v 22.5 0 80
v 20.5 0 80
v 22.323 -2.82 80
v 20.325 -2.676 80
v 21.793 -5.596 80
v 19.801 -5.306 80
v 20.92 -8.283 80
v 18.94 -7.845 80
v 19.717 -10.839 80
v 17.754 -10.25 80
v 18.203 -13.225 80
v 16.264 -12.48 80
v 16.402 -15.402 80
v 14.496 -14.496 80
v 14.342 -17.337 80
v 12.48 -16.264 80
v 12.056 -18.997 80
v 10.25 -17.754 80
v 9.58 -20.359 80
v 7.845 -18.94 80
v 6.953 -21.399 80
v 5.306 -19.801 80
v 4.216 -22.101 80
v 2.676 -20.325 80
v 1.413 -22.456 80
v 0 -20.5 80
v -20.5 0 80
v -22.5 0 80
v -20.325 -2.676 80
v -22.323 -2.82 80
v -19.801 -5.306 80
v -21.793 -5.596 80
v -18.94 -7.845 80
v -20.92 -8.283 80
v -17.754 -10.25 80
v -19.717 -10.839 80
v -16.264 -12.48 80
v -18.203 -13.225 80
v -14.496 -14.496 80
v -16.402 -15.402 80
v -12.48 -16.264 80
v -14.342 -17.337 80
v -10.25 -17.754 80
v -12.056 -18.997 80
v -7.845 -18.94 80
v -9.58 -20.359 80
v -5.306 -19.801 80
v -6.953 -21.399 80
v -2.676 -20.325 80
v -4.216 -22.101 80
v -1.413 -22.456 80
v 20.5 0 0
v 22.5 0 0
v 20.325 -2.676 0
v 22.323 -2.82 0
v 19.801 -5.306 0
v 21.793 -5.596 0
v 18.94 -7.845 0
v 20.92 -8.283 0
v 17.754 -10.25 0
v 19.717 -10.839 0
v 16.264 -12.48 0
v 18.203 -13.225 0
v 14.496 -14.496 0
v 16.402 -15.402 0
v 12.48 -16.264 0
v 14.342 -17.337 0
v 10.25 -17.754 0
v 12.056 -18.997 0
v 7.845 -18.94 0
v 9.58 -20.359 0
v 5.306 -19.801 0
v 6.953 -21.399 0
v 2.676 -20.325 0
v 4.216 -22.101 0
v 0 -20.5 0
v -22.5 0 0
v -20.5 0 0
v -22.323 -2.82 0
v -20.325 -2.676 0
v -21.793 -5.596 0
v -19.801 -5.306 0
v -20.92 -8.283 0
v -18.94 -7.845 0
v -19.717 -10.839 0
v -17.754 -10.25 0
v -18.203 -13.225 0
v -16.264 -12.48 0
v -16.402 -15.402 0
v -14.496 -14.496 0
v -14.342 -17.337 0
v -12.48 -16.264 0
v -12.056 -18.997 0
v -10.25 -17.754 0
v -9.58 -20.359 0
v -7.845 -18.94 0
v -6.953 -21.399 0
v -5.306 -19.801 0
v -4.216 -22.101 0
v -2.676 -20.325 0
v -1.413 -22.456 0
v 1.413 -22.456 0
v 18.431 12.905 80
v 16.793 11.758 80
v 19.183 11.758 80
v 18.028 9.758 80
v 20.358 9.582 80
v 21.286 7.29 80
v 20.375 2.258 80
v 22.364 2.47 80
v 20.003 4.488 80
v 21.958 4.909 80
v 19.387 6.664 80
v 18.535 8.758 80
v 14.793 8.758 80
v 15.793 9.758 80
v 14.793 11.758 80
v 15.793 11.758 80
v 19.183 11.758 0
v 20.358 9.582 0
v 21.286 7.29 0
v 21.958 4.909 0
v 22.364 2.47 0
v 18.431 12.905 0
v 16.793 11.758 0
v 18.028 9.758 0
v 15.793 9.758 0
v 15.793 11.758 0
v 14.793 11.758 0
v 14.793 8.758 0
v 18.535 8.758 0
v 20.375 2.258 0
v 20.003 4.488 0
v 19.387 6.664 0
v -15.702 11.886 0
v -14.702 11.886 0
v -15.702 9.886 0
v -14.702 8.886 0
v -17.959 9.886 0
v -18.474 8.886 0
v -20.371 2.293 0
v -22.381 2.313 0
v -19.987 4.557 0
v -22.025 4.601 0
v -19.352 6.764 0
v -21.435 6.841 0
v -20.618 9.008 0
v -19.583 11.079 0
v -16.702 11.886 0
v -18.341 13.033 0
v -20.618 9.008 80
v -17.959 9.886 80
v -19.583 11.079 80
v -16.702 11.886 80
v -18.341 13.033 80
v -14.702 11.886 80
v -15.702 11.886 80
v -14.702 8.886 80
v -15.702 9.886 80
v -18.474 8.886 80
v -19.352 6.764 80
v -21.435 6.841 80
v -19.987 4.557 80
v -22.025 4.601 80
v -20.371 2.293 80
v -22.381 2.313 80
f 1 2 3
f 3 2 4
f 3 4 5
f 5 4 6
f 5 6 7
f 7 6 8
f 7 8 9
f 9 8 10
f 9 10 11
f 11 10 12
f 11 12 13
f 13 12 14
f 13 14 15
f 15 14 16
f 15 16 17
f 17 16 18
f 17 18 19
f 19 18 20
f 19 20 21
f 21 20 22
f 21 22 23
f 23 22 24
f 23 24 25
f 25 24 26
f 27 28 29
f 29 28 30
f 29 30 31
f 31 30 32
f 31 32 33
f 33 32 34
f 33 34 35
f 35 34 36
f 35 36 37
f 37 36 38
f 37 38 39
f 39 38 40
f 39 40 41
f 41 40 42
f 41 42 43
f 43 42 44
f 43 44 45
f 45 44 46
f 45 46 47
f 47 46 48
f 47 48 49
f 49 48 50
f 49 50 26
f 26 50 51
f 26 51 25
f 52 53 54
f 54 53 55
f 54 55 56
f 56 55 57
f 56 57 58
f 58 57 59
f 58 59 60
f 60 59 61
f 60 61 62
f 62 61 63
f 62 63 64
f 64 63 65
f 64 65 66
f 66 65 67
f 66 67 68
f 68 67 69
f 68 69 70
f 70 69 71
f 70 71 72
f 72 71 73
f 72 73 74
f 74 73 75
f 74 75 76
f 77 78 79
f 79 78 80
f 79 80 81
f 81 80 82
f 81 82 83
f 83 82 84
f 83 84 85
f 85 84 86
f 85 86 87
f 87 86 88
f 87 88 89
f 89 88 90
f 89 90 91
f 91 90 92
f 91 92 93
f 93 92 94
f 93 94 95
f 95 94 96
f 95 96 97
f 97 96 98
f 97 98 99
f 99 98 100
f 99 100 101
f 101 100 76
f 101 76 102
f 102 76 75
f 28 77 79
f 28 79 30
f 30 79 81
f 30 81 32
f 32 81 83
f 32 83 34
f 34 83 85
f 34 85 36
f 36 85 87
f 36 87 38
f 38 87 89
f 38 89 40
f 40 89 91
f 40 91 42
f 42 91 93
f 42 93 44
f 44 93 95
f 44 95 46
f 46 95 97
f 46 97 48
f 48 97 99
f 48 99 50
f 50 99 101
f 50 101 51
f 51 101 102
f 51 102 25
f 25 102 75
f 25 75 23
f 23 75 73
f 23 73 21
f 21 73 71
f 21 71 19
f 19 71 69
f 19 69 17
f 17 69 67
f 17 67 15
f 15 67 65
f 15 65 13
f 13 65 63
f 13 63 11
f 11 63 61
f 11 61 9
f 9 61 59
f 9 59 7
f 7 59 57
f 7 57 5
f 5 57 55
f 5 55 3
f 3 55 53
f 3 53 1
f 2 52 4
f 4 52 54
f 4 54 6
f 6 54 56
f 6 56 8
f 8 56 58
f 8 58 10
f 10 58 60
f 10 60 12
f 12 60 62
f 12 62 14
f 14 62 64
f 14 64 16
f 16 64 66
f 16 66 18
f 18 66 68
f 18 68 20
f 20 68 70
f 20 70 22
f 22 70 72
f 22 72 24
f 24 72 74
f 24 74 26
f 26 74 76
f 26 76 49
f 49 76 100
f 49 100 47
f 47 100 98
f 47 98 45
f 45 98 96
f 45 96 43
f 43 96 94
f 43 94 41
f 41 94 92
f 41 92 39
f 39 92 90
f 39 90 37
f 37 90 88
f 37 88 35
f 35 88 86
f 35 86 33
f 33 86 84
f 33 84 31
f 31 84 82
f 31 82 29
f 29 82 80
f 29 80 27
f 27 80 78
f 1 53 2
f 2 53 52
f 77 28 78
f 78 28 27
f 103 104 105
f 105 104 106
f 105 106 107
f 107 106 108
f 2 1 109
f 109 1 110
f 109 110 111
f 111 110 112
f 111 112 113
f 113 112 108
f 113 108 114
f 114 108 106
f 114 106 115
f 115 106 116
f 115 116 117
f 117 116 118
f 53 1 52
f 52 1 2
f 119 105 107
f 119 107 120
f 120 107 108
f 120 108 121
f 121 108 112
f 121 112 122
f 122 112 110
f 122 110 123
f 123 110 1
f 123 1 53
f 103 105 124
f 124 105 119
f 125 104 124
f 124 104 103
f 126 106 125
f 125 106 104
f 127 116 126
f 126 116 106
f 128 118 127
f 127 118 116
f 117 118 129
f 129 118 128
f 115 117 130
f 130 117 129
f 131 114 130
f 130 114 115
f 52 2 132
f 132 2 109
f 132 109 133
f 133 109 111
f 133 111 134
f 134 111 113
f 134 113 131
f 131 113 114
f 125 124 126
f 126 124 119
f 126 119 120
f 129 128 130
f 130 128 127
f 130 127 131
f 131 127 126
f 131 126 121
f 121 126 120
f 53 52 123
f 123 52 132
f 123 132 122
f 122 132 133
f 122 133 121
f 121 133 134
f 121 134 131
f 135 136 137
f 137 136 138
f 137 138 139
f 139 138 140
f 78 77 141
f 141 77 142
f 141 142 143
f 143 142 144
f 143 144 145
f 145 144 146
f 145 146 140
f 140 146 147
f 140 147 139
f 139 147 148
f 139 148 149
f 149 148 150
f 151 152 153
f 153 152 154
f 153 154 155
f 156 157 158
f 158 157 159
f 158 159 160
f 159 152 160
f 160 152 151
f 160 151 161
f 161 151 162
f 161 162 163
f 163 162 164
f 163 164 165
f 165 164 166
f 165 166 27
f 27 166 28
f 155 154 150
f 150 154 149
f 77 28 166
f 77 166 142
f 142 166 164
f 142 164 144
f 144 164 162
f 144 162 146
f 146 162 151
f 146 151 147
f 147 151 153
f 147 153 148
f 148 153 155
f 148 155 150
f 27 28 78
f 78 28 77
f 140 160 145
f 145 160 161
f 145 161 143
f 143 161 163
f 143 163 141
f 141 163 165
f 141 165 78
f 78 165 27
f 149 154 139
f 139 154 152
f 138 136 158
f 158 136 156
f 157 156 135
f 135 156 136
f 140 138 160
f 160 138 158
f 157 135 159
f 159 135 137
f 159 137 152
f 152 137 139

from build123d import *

# Parameters (mm, degrees)
SKETCH1_R           = 22.5
SKETCH1_R_2         = 20.5
BOSS_EXTRUDE1_DEPTH = 80
SKETCH2_W           = 45
SKETCH2_H           = 22.5
CUT_EXTRUDE1_DEPTH  = 87.095876789
SKETCH4_W           = 4.401808348
SKETCH4_H           = 1
SKETCH4_W_2         = 1
SKETCH4_H_2         = 3
BOSS_EXTRUDE2_DEPTH = 80


with BuildPart() as part:
    # Sketch1 → Boss-Extrude1 (new body)
    with BuildSketch(Plane.XY):
        Circle(SKETCH1_R)
        Circle(SKETCH1_R_2, mode=Mode.SUBTRACT)
    extrude(amount=BOSS_EXTRUDE1_DEPTH)

    # Sketch2 → Cut-Extrude1 (cut, through all)
    with BuildSketch(Plane.XY.offset(80)):
        with Locations((0, 11.25)):
            Rectangle(SKETCH2_W, SKETCH2_H)
    extrude(amount=-CUT_EXTRUDE1_DEPTH, mode=Mode.SUBTRACT)


with BuildPart() as body_2:
    # Sketch4 → Boss-Extrude2 (new body)
    with BuildSketch(Plane.XY.offset(80)):
        with BuildLine():
            ThreePointArc((22.5, 0), (21.654908627, 6.108594957), (19.183117125, 11.758316945))
            Line((19.183117125, 11.758316945), (19.183117125, 8.758316945))
            Line((19.183117125, 8.758316945), (18.534882905, 8.758316945))
            ThreePointArc((18.534882905, 8.758316945), (20.002688564, 4.488034116), (20.5, 0))
            Line((20.5, 0), (22.5, 0))
        make_face()
        Polygon((16.792616908, 11.758316945), (18.430920997, 12.905469818), (19.183117125, 11.758316945), align=None)
        with BuildLine():
            Line((19.183117125, 8.758316945), (19.183117125, 11.758316945))
            Line((19.183117125, 11.758316945), (16.792616908, 11.758316945))
            ThreePointArc((16.792616908, 11.758316945), (17.439231391, 10.776047906), (18.028456684, 9.758316945))
            ThreePointArc((18.028456684, 9.758316945), (18.288505966, 9.261778962), (18.534882905, 8.758316945))
            Line((18.534882905, 8.758316945), (19.183117125, 8.758316945))
        make_face()
        with BuildLine():
            Line((15.792616908, 9.758316945), (15.792616908, 11.758316945))
            Line((15.792616908, 11.758316945), (14.792616908, 11.758316945))
            Line((14.792616908, 11.758316945), (14.792616908, 8.758316945))
            Line((14.792616908, 8.758316945), (18.534882905, 8.758316945))
            ThreePointArc((18.534882905, 8.758316945), (18.288505966, 9.261778962), (18.028456684, 9.758316945))
            Line((18.028456684, 9.758316945), (15.792616908, 9.758316945))
        make_face()
        with BuildLine():
            Line((-16.702272837, 11.886298081), (-18.340620511, 13.033481472))
            ThreePointArc((-18.340620511, 13.033481472), (-21.43494765, 6.840542322), (-22.5, 0))
            Line((-22.5, 0), (-20.5, 0))
            ThreePointArc((-20.5, 0), (-19.527501033, 6.239126815), (-16.702272837, 11.886298081))
        make_face()
        with Locations((-16.903177011, 9.386298081)):
            Rectangle(SKETCH4_W, SKETCH4_H)
        with Locations((-15.202272837, 10.386298081)):
            Rectangle(SKETCH4_W_2, SKETCH4_H_2)
    extrude(amount=-BOSS_EXTRUDE2_DEPTH)


solid = Compound([part.part, body_2.part])
